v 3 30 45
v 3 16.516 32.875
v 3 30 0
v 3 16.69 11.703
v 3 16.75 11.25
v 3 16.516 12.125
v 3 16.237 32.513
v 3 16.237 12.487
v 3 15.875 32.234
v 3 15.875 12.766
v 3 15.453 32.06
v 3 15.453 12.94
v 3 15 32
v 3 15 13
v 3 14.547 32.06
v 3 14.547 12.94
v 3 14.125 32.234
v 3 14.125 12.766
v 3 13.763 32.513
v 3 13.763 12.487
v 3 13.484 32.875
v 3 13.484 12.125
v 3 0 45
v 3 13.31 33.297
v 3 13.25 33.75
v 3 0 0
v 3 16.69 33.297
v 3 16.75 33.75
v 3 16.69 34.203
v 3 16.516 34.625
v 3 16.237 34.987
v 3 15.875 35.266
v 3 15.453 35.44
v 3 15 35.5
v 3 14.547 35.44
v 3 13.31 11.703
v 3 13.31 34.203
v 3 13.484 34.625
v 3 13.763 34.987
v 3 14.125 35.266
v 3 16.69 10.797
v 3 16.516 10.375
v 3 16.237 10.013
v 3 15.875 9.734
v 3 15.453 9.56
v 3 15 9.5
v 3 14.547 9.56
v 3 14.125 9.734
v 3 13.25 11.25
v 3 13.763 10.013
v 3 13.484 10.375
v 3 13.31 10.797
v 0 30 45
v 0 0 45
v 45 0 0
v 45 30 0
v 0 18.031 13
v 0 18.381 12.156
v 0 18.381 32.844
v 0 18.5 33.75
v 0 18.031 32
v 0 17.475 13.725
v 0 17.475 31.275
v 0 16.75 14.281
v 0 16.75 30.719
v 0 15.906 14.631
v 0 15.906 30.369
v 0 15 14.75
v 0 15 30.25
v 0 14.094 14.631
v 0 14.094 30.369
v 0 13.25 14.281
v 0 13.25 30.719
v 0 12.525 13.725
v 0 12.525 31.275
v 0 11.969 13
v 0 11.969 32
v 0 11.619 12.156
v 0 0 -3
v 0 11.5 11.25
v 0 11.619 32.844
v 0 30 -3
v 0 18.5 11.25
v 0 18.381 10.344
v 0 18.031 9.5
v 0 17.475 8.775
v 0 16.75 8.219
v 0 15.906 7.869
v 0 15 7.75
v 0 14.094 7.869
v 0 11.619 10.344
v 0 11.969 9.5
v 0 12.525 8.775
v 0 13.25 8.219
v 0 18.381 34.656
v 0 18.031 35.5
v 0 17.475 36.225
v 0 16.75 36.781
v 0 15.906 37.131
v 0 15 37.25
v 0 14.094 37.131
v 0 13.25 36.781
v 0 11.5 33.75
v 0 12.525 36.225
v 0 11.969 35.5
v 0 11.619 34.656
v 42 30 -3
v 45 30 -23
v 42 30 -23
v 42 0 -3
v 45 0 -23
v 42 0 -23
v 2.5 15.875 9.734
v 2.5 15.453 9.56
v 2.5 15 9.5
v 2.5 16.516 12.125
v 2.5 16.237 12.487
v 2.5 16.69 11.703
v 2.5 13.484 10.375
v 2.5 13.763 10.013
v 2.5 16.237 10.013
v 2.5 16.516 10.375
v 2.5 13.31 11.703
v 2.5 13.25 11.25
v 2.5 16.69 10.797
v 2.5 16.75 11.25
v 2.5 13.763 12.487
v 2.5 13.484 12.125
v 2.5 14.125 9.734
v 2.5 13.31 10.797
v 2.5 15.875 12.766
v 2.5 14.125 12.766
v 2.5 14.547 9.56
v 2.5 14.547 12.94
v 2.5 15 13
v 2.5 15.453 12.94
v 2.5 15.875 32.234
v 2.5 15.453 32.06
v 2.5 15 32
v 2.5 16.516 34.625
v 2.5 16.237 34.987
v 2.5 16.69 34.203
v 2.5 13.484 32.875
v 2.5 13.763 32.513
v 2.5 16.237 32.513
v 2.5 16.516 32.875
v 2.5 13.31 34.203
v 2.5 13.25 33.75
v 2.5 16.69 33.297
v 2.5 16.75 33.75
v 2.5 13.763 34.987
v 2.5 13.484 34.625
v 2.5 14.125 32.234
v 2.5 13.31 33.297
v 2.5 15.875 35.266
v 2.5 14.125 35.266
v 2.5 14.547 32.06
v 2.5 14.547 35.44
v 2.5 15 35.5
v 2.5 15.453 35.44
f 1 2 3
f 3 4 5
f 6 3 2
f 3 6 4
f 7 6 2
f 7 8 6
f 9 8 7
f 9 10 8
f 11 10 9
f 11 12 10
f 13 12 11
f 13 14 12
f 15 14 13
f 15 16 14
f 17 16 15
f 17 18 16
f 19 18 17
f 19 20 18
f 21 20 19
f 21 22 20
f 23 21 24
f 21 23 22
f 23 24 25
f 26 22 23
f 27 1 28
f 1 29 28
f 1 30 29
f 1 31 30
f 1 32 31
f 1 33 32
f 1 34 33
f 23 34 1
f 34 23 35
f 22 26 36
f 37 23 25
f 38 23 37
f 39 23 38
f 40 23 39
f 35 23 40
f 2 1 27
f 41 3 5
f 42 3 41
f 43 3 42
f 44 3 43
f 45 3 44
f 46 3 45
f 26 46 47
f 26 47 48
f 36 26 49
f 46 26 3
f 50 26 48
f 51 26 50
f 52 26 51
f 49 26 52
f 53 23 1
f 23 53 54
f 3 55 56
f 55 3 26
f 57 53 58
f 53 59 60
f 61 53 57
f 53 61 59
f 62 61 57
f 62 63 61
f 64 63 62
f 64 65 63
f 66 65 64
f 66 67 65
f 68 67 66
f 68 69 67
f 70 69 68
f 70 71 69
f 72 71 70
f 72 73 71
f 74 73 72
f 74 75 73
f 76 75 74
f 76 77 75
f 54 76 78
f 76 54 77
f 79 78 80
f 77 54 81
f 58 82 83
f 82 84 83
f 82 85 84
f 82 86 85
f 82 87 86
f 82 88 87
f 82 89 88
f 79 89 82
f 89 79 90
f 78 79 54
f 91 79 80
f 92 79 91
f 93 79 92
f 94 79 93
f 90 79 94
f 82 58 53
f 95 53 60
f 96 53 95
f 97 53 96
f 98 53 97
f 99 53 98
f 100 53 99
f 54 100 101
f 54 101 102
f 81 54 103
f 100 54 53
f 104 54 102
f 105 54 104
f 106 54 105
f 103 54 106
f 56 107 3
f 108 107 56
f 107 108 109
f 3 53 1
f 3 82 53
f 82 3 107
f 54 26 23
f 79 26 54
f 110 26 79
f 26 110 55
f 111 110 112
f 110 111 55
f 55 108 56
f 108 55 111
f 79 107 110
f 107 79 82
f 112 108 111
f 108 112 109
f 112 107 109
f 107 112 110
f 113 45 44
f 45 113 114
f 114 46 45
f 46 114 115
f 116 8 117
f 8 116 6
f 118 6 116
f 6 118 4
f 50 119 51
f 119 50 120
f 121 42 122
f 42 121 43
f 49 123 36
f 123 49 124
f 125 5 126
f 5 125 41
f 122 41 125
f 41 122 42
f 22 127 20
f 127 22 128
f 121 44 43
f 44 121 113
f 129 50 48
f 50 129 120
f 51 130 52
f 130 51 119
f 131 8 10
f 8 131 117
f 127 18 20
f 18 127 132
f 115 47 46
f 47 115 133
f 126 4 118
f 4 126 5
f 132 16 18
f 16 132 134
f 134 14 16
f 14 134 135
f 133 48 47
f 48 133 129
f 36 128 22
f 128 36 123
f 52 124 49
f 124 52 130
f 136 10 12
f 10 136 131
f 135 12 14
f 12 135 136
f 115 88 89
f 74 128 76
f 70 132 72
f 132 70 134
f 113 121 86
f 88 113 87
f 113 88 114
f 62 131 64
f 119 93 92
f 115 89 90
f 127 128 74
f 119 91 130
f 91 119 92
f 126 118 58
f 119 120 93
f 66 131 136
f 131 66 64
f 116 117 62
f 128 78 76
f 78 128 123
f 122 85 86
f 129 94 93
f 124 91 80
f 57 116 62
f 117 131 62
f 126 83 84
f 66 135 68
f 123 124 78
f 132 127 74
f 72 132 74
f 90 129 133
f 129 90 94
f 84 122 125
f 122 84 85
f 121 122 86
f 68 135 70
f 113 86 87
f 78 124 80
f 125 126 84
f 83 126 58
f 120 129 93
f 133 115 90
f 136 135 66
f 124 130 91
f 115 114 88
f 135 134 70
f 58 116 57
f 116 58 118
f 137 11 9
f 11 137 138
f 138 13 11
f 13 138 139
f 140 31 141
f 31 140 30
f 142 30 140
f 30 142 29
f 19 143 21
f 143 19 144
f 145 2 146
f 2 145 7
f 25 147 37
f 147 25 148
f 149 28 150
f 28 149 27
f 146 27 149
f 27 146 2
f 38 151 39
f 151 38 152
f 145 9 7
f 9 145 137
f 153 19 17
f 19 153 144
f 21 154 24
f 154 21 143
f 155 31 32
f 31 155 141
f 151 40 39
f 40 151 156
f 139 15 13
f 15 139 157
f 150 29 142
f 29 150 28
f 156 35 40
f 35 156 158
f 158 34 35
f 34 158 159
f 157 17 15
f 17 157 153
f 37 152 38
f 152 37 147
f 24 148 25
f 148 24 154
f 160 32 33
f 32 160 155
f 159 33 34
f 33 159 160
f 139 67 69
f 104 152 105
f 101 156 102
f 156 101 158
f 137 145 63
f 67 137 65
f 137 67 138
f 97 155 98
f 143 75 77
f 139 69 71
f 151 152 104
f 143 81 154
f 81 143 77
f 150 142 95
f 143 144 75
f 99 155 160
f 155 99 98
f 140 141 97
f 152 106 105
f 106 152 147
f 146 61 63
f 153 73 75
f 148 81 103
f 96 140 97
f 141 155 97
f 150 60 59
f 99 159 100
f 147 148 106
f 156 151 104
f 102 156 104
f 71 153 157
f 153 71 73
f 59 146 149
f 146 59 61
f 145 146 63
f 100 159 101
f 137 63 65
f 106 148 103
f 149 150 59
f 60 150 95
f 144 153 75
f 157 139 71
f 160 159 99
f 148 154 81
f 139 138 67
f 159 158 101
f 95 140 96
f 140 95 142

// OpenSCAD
// Bench leg sockel clip — Z-step bracket
//
// Cross-section (side view):
//
//   |  <- back plate (screws into beam face)
//   |
//   --------|
//            |  <- sockel face (double-sided tape here)
//            |
//
// Back plate attaches to one face of the 45×45 beam.
// Horizontal spans the beam depth so the sockel face is flush with the opposite face.
// Sockel face hangs down to cover the leg extension.

// === Parameters ===
beam_face    = 45;    // 45×45 beam width / depth
back_height  = 45;    // how far up the beam the back plate grips
sockel_h     = 20;    // height of the sockel face (hanging down)
width        = 30;    // bracket width (Y axis, along beam length)
wall_t       = 3;     // wall thickness throughout
screw_d      = 3.5;   // screw shaft diameter
head_d       = 7;     // countersink head diameter
head_depth   = 2.5;   // countersink depth

// === Geometry ===
// Origin: bottom of back plate (junction with horizontal).
// Z goes UP along back plate.
// X goes outward (toward front of beam).

module sockel_clip() {
    difference() {
        union() {
            // Back plate — goes UP, screws into beam face
            cube([wall_t, width, back_height]);

            // Horizontal connector — at the bottom, spans beam depth in X
            translate([0, 0, -wall_t])
                cube([beam_face, width, wall_t]);

            // Sockel face — hangs down from far end of horizontal
            translate([beam_face - wall_t, 0, -wall_t - sockel_h])
                cube([wall_t, width, sockel_h]);
        }

        // Countersunk screw holes through back plate
        for (i = [0.25, 0.75]) {
            translate([0, width / 2, back_height * i])
            rotate([0, 90, 0]) {
                translate([0, 0, -1])
                    cylinder(d = screw_d, h = wall_t + 2, $fn = 24);
                cylinder(d1 = head_d, d2 = screw_d, h = head_depth, $fn = 24);
            }
        }
    }
}

sockel_clip();
